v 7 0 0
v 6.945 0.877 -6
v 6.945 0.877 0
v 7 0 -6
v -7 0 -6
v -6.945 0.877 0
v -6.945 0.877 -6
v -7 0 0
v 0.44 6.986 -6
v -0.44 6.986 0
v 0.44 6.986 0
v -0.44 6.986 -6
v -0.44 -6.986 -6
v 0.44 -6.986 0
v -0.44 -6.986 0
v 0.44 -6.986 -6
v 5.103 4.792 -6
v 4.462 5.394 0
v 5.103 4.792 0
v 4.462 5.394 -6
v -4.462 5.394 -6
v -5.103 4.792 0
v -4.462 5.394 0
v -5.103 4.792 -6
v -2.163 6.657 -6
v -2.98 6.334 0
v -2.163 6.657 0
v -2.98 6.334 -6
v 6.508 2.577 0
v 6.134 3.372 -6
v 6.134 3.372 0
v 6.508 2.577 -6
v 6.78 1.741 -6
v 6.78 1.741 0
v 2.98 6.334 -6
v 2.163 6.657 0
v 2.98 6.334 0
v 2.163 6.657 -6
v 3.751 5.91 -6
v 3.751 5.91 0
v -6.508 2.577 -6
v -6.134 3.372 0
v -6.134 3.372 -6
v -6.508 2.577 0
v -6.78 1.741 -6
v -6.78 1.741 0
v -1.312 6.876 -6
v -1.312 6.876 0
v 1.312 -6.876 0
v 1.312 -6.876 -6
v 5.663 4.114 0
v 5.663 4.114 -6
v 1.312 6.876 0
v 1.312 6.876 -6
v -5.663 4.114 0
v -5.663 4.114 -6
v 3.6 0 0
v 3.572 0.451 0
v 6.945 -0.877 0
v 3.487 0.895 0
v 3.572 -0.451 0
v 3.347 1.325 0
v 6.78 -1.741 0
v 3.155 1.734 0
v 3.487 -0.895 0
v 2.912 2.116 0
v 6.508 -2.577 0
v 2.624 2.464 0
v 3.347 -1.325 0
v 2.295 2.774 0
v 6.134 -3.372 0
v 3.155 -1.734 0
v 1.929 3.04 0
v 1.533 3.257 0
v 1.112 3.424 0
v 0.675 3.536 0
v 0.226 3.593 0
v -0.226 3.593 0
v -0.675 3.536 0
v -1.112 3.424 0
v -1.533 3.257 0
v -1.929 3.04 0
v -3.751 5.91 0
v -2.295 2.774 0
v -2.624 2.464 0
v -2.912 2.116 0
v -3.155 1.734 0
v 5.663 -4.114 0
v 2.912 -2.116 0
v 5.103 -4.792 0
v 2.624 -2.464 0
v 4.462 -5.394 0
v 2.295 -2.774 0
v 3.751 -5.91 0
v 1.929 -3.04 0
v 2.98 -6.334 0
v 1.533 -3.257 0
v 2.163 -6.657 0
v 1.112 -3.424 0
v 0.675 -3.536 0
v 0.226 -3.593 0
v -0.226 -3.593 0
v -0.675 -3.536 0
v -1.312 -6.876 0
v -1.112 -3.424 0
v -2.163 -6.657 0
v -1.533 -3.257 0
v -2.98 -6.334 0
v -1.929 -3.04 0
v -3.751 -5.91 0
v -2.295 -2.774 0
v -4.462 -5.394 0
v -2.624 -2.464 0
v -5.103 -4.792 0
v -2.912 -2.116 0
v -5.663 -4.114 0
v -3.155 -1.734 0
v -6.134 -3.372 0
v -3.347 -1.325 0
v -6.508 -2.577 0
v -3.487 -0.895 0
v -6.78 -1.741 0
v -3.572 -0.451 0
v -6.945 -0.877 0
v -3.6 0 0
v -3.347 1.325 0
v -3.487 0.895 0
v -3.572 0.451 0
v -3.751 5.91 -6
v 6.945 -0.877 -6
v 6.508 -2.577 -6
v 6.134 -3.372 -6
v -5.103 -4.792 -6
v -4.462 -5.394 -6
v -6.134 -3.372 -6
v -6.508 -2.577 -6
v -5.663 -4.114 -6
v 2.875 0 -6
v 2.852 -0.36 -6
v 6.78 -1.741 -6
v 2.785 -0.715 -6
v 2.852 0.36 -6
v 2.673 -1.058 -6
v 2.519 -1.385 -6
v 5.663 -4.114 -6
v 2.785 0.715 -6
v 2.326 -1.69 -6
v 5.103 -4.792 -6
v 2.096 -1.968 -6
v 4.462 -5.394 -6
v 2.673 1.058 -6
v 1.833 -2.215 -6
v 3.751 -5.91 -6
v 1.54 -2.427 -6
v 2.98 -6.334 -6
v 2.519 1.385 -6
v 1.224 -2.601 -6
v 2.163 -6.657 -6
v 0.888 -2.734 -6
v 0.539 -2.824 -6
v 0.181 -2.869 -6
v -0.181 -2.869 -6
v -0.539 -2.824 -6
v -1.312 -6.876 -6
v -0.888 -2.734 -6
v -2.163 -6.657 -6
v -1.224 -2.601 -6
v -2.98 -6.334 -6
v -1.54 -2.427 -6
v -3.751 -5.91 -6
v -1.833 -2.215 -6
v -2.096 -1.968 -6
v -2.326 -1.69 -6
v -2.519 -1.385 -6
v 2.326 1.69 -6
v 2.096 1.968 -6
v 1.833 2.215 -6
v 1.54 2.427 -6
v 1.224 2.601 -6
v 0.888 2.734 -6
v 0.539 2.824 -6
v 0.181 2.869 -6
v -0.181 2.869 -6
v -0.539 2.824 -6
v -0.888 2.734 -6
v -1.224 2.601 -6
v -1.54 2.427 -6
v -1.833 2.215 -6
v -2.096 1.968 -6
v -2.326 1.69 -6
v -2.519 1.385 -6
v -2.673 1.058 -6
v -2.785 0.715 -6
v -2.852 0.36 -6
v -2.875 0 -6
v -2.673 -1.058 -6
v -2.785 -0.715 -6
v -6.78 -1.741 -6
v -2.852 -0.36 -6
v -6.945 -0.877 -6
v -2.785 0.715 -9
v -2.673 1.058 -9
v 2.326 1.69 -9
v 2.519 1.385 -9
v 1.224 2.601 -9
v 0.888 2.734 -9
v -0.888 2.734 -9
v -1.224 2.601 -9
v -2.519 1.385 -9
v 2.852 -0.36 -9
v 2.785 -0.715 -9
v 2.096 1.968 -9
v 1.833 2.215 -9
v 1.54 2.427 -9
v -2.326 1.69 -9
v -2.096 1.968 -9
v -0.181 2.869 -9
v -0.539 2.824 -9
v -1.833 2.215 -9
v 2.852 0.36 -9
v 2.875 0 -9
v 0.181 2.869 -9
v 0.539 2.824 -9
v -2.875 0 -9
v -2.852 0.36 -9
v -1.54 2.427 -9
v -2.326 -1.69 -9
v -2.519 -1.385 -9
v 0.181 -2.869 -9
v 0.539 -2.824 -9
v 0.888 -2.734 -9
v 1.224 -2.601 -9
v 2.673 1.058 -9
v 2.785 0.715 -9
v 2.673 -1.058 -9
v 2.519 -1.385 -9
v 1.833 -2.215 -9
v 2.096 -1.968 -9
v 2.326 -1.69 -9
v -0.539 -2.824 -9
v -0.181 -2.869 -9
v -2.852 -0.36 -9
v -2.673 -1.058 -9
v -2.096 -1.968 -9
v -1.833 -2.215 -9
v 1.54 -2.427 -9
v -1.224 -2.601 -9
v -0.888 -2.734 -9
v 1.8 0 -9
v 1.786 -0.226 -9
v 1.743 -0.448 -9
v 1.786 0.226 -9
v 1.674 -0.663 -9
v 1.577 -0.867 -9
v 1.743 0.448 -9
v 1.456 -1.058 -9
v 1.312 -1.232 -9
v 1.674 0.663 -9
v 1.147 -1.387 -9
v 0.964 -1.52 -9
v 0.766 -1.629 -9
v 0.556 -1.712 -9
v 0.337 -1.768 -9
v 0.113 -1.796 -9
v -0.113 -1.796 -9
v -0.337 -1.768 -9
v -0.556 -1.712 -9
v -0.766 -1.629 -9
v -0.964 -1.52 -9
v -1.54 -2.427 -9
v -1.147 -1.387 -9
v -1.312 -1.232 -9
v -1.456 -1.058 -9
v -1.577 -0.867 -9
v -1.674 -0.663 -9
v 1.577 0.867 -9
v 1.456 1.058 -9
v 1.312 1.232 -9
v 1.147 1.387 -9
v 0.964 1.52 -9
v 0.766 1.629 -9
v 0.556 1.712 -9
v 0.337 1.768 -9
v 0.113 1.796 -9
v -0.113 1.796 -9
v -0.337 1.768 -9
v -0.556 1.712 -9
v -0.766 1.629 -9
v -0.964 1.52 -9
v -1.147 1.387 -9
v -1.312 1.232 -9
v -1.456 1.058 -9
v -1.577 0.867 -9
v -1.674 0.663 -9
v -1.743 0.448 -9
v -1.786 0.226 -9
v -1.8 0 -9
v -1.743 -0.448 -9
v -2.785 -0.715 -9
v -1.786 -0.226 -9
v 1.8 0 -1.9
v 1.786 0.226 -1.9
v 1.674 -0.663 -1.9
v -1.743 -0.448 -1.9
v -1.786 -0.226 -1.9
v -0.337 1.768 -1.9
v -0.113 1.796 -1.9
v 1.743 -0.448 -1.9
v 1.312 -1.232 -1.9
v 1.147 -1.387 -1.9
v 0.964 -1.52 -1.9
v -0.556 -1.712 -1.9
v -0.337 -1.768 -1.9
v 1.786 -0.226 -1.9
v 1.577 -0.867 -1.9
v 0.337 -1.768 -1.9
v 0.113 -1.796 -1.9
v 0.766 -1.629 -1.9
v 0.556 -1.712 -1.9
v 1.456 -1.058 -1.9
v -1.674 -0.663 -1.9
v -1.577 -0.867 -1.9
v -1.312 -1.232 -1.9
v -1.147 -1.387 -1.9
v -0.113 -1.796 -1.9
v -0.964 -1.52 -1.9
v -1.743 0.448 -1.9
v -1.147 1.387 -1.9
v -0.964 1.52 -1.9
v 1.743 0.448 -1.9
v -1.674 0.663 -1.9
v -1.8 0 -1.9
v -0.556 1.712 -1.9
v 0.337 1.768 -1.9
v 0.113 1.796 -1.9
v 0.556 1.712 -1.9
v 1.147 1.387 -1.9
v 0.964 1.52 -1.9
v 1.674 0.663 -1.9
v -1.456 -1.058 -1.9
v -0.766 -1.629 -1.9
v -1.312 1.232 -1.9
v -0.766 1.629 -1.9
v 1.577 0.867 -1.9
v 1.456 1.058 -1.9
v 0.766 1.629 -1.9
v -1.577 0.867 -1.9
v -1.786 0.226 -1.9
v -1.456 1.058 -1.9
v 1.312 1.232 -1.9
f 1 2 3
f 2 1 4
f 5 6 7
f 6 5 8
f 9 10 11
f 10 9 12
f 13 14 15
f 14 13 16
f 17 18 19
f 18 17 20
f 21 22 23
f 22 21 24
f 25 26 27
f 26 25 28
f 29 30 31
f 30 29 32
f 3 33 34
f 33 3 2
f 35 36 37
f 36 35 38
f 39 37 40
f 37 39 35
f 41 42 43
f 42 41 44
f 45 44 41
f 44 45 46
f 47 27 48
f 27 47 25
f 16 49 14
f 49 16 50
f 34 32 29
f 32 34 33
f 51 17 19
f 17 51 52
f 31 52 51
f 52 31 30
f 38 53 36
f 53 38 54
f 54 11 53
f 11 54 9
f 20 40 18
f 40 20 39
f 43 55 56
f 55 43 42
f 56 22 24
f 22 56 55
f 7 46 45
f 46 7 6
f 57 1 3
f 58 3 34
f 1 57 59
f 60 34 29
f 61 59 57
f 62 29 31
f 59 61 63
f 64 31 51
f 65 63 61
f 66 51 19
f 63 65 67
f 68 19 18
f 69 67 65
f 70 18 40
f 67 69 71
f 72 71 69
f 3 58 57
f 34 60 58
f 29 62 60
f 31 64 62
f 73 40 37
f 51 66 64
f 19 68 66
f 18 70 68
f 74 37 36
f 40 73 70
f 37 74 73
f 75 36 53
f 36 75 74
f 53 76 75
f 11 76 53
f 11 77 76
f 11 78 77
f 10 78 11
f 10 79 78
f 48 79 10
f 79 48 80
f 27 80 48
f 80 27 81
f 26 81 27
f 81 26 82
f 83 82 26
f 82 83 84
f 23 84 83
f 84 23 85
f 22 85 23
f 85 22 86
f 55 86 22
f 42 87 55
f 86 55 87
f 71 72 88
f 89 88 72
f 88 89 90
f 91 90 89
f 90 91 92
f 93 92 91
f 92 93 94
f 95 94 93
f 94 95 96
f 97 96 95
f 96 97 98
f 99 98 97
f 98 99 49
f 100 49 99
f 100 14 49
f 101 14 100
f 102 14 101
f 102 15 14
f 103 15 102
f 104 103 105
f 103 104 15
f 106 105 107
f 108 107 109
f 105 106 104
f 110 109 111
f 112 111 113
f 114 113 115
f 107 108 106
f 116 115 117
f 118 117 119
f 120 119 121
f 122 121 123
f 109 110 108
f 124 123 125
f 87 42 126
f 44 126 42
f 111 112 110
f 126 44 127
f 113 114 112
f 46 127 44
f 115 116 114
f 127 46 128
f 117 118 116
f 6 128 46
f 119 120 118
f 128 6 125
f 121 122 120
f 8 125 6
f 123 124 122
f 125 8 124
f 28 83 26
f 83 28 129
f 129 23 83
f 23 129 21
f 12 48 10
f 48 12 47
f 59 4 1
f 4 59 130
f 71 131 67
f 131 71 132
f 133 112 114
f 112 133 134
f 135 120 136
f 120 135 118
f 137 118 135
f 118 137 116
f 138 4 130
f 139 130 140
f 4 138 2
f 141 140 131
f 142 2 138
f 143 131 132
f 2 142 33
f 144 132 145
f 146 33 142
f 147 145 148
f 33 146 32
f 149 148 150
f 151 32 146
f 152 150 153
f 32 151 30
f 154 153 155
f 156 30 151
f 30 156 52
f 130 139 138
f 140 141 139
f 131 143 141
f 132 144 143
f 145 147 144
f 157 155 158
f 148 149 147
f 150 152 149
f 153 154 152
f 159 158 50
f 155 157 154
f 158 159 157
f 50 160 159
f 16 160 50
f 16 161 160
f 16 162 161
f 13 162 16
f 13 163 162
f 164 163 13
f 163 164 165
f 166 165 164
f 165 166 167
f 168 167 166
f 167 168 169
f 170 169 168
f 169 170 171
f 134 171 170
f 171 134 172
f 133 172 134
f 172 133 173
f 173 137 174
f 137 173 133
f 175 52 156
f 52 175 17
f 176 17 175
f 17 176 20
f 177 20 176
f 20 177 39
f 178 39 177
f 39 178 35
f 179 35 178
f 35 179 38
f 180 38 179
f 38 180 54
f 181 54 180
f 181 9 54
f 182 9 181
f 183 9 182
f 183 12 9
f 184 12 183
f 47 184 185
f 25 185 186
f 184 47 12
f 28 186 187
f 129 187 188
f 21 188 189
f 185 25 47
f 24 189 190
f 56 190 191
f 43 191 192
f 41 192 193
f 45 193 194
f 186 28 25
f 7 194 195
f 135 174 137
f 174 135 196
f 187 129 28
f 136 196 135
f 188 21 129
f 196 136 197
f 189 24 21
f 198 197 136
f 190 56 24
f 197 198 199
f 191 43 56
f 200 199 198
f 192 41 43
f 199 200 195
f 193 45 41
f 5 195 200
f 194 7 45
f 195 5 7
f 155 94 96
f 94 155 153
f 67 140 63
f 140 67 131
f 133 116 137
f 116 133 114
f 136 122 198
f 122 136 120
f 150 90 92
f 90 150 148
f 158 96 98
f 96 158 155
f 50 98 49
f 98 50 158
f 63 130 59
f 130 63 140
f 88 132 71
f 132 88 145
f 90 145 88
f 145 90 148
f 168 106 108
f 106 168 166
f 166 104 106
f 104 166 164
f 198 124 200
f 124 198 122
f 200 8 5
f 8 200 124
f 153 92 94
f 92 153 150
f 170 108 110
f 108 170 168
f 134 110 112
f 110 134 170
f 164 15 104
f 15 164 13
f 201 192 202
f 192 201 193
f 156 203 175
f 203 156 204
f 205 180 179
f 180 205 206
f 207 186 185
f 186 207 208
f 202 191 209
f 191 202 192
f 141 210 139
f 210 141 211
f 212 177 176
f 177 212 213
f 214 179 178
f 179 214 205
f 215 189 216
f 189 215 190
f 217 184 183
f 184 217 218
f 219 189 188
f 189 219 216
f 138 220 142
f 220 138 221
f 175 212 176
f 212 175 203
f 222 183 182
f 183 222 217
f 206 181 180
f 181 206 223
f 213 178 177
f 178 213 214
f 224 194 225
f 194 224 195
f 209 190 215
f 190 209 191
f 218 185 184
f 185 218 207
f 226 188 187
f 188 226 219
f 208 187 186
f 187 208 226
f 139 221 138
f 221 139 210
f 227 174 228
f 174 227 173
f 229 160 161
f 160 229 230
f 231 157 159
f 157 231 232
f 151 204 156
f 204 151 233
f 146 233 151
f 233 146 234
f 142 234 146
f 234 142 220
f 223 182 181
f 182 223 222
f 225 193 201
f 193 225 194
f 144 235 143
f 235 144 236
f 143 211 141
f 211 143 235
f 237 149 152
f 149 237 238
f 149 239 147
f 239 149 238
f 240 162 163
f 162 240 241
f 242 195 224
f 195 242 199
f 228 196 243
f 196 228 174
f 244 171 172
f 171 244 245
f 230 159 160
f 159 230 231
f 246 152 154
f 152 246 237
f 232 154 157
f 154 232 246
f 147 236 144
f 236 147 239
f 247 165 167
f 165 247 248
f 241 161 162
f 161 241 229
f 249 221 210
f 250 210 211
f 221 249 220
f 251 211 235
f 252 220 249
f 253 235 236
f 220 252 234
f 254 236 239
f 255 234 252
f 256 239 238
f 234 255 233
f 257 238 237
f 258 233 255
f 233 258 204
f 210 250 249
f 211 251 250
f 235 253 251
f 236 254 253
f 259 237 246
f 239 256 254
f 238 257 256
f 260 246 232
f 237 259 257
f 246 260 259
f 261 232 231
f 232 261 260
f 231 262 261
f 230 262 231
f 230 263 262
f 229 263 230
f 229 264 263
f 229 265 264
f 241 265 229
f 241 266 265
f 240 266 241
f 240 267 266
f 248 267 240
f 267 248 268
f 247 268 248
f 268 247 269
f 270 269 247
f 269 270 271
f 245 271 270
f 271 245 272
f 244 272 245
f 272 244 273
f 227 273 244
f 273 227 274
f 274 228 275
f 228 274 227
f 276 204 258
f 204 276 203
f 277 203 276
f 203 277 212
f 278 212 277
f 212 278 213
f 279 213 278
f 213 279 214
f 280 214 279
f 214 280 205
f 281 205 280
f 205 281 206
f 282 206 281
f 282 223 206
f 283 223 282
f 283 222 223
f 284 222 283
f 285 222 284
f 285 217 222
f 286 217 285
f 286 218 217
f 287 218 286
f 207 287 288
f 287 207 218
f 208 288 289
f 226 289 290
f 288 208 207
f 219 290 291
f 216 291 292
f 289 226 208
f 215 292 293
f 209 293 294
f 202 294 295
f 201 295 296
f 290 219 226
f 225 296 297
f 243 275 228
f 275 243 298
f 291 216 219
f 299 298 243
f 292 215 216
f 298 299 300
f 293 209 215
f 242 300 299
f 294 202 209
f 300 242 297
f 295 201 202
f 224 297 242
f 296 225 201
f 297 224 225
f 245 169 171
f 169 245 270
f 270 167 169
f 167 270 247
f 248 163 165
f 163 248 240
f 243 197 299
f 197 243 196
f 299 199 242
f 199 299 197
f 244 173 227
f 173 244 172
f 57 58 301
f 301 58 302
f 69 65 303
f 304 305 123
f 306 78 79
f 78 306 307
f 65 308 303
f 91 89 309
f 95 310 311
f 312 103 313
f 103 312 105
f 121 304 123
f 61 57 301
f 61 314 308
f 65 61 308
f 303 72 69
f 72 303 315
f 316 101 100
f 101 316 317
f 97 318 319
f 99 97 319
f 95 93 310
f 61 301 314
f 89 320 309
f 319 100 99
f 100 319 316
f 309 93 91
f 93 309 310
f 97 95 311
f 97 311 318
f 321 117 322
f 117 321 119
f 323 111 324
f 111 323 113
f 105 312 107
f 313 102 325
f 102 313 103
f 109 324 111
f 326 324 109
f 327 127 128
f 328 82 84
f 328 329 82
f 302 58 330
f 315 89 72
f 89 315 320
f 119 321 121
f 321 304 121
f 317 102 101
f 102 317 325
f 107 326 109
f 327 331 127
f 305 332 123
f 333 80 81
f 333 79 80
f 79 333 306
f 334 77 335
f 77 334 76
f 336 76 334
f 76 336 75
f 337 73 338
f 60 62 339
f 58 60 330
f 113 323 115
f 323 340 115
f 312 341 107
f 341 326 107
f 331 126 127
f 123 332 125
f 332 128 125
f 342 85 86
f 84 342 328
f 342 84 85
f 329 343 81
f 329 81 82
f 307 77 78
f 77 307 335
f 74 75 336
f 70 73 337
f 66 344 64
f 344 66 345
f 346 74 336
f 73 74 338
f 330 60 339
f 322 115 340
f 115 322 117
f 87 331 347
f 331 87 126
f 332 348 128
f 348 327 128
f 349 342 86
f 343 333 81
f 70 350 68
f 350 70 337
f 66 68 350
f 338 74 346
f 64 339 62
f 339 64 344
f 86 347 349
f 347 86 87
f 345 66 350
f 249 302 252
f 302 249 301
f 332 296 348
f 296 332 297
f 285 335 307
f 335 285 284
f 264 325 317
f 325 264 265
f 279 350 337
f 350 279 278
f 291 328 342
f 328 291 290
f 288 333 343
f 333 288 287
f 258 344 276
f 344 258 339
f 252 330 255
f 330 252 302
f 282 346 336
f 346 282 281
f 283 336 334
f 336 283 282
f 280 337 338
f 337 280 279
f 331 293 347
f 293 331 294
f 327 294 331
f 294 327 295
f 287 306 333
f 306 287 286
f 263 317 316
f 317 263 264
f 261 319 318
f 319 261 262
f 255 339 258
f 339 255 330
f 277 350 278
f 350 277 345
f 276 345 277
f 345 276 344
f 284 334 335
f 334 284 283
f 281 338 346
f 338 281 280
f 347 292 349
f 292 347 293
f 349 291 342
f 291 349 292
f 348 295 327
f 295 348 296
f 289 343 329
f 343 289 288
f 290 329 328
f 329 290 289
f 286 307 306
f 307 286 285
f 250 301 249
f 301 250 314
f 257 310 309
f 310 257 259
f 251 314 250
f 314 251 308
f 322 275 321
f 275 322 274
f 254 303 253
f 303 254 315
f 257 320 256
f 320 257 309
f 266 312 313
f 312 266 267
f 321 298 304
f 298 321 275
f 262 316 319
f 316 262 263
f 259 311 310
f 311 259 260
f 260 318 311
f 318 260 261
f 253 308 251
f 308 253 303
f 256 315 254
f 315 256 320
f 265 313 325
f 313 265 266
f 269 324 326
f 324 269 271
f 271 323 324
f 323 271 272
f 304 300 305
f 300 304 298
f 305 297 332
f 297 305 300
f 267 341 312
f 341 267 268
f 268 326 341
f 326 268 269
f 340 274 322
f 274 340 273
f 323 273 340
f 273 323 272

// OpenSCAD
$fn = 50;


difference() {
	union() {
		translate(v = [0, 0, -6.0000000000]) {
			cylinder(h = 6, r = 7.0000000000);
		}
		translate(v = [0, 0, -9.0000000000]) {
			cylinder(h = 9, r = 2.8750000000);
		}
	}
	union() {
		translate(v = [0, 0, 0]) {
			rotate(a = [0, 0, 0]) {
				difference() {
					union() {
						translate(v = [0, 0, -9.0000000000]) {
							cylinder(h = 9, r = 1.5000000000);
						}
						translate(v = [0, 0, -1.9000000000]) {
							cylinder(h = 1.9000000000, r1 = 1.8000000000, r2 = 3.6000000000);
						}
						translate(v = [0, 0, -9.0000000000]) {
							cylinder(h = 9, r = 1.8000000000);
						}
						translate(v = [0, 0, -9.0000000000]) {
							cylinder(h = 9, r = 1.5000000000);
						}
					}
					union();
				}
			}
		}
	}
}
